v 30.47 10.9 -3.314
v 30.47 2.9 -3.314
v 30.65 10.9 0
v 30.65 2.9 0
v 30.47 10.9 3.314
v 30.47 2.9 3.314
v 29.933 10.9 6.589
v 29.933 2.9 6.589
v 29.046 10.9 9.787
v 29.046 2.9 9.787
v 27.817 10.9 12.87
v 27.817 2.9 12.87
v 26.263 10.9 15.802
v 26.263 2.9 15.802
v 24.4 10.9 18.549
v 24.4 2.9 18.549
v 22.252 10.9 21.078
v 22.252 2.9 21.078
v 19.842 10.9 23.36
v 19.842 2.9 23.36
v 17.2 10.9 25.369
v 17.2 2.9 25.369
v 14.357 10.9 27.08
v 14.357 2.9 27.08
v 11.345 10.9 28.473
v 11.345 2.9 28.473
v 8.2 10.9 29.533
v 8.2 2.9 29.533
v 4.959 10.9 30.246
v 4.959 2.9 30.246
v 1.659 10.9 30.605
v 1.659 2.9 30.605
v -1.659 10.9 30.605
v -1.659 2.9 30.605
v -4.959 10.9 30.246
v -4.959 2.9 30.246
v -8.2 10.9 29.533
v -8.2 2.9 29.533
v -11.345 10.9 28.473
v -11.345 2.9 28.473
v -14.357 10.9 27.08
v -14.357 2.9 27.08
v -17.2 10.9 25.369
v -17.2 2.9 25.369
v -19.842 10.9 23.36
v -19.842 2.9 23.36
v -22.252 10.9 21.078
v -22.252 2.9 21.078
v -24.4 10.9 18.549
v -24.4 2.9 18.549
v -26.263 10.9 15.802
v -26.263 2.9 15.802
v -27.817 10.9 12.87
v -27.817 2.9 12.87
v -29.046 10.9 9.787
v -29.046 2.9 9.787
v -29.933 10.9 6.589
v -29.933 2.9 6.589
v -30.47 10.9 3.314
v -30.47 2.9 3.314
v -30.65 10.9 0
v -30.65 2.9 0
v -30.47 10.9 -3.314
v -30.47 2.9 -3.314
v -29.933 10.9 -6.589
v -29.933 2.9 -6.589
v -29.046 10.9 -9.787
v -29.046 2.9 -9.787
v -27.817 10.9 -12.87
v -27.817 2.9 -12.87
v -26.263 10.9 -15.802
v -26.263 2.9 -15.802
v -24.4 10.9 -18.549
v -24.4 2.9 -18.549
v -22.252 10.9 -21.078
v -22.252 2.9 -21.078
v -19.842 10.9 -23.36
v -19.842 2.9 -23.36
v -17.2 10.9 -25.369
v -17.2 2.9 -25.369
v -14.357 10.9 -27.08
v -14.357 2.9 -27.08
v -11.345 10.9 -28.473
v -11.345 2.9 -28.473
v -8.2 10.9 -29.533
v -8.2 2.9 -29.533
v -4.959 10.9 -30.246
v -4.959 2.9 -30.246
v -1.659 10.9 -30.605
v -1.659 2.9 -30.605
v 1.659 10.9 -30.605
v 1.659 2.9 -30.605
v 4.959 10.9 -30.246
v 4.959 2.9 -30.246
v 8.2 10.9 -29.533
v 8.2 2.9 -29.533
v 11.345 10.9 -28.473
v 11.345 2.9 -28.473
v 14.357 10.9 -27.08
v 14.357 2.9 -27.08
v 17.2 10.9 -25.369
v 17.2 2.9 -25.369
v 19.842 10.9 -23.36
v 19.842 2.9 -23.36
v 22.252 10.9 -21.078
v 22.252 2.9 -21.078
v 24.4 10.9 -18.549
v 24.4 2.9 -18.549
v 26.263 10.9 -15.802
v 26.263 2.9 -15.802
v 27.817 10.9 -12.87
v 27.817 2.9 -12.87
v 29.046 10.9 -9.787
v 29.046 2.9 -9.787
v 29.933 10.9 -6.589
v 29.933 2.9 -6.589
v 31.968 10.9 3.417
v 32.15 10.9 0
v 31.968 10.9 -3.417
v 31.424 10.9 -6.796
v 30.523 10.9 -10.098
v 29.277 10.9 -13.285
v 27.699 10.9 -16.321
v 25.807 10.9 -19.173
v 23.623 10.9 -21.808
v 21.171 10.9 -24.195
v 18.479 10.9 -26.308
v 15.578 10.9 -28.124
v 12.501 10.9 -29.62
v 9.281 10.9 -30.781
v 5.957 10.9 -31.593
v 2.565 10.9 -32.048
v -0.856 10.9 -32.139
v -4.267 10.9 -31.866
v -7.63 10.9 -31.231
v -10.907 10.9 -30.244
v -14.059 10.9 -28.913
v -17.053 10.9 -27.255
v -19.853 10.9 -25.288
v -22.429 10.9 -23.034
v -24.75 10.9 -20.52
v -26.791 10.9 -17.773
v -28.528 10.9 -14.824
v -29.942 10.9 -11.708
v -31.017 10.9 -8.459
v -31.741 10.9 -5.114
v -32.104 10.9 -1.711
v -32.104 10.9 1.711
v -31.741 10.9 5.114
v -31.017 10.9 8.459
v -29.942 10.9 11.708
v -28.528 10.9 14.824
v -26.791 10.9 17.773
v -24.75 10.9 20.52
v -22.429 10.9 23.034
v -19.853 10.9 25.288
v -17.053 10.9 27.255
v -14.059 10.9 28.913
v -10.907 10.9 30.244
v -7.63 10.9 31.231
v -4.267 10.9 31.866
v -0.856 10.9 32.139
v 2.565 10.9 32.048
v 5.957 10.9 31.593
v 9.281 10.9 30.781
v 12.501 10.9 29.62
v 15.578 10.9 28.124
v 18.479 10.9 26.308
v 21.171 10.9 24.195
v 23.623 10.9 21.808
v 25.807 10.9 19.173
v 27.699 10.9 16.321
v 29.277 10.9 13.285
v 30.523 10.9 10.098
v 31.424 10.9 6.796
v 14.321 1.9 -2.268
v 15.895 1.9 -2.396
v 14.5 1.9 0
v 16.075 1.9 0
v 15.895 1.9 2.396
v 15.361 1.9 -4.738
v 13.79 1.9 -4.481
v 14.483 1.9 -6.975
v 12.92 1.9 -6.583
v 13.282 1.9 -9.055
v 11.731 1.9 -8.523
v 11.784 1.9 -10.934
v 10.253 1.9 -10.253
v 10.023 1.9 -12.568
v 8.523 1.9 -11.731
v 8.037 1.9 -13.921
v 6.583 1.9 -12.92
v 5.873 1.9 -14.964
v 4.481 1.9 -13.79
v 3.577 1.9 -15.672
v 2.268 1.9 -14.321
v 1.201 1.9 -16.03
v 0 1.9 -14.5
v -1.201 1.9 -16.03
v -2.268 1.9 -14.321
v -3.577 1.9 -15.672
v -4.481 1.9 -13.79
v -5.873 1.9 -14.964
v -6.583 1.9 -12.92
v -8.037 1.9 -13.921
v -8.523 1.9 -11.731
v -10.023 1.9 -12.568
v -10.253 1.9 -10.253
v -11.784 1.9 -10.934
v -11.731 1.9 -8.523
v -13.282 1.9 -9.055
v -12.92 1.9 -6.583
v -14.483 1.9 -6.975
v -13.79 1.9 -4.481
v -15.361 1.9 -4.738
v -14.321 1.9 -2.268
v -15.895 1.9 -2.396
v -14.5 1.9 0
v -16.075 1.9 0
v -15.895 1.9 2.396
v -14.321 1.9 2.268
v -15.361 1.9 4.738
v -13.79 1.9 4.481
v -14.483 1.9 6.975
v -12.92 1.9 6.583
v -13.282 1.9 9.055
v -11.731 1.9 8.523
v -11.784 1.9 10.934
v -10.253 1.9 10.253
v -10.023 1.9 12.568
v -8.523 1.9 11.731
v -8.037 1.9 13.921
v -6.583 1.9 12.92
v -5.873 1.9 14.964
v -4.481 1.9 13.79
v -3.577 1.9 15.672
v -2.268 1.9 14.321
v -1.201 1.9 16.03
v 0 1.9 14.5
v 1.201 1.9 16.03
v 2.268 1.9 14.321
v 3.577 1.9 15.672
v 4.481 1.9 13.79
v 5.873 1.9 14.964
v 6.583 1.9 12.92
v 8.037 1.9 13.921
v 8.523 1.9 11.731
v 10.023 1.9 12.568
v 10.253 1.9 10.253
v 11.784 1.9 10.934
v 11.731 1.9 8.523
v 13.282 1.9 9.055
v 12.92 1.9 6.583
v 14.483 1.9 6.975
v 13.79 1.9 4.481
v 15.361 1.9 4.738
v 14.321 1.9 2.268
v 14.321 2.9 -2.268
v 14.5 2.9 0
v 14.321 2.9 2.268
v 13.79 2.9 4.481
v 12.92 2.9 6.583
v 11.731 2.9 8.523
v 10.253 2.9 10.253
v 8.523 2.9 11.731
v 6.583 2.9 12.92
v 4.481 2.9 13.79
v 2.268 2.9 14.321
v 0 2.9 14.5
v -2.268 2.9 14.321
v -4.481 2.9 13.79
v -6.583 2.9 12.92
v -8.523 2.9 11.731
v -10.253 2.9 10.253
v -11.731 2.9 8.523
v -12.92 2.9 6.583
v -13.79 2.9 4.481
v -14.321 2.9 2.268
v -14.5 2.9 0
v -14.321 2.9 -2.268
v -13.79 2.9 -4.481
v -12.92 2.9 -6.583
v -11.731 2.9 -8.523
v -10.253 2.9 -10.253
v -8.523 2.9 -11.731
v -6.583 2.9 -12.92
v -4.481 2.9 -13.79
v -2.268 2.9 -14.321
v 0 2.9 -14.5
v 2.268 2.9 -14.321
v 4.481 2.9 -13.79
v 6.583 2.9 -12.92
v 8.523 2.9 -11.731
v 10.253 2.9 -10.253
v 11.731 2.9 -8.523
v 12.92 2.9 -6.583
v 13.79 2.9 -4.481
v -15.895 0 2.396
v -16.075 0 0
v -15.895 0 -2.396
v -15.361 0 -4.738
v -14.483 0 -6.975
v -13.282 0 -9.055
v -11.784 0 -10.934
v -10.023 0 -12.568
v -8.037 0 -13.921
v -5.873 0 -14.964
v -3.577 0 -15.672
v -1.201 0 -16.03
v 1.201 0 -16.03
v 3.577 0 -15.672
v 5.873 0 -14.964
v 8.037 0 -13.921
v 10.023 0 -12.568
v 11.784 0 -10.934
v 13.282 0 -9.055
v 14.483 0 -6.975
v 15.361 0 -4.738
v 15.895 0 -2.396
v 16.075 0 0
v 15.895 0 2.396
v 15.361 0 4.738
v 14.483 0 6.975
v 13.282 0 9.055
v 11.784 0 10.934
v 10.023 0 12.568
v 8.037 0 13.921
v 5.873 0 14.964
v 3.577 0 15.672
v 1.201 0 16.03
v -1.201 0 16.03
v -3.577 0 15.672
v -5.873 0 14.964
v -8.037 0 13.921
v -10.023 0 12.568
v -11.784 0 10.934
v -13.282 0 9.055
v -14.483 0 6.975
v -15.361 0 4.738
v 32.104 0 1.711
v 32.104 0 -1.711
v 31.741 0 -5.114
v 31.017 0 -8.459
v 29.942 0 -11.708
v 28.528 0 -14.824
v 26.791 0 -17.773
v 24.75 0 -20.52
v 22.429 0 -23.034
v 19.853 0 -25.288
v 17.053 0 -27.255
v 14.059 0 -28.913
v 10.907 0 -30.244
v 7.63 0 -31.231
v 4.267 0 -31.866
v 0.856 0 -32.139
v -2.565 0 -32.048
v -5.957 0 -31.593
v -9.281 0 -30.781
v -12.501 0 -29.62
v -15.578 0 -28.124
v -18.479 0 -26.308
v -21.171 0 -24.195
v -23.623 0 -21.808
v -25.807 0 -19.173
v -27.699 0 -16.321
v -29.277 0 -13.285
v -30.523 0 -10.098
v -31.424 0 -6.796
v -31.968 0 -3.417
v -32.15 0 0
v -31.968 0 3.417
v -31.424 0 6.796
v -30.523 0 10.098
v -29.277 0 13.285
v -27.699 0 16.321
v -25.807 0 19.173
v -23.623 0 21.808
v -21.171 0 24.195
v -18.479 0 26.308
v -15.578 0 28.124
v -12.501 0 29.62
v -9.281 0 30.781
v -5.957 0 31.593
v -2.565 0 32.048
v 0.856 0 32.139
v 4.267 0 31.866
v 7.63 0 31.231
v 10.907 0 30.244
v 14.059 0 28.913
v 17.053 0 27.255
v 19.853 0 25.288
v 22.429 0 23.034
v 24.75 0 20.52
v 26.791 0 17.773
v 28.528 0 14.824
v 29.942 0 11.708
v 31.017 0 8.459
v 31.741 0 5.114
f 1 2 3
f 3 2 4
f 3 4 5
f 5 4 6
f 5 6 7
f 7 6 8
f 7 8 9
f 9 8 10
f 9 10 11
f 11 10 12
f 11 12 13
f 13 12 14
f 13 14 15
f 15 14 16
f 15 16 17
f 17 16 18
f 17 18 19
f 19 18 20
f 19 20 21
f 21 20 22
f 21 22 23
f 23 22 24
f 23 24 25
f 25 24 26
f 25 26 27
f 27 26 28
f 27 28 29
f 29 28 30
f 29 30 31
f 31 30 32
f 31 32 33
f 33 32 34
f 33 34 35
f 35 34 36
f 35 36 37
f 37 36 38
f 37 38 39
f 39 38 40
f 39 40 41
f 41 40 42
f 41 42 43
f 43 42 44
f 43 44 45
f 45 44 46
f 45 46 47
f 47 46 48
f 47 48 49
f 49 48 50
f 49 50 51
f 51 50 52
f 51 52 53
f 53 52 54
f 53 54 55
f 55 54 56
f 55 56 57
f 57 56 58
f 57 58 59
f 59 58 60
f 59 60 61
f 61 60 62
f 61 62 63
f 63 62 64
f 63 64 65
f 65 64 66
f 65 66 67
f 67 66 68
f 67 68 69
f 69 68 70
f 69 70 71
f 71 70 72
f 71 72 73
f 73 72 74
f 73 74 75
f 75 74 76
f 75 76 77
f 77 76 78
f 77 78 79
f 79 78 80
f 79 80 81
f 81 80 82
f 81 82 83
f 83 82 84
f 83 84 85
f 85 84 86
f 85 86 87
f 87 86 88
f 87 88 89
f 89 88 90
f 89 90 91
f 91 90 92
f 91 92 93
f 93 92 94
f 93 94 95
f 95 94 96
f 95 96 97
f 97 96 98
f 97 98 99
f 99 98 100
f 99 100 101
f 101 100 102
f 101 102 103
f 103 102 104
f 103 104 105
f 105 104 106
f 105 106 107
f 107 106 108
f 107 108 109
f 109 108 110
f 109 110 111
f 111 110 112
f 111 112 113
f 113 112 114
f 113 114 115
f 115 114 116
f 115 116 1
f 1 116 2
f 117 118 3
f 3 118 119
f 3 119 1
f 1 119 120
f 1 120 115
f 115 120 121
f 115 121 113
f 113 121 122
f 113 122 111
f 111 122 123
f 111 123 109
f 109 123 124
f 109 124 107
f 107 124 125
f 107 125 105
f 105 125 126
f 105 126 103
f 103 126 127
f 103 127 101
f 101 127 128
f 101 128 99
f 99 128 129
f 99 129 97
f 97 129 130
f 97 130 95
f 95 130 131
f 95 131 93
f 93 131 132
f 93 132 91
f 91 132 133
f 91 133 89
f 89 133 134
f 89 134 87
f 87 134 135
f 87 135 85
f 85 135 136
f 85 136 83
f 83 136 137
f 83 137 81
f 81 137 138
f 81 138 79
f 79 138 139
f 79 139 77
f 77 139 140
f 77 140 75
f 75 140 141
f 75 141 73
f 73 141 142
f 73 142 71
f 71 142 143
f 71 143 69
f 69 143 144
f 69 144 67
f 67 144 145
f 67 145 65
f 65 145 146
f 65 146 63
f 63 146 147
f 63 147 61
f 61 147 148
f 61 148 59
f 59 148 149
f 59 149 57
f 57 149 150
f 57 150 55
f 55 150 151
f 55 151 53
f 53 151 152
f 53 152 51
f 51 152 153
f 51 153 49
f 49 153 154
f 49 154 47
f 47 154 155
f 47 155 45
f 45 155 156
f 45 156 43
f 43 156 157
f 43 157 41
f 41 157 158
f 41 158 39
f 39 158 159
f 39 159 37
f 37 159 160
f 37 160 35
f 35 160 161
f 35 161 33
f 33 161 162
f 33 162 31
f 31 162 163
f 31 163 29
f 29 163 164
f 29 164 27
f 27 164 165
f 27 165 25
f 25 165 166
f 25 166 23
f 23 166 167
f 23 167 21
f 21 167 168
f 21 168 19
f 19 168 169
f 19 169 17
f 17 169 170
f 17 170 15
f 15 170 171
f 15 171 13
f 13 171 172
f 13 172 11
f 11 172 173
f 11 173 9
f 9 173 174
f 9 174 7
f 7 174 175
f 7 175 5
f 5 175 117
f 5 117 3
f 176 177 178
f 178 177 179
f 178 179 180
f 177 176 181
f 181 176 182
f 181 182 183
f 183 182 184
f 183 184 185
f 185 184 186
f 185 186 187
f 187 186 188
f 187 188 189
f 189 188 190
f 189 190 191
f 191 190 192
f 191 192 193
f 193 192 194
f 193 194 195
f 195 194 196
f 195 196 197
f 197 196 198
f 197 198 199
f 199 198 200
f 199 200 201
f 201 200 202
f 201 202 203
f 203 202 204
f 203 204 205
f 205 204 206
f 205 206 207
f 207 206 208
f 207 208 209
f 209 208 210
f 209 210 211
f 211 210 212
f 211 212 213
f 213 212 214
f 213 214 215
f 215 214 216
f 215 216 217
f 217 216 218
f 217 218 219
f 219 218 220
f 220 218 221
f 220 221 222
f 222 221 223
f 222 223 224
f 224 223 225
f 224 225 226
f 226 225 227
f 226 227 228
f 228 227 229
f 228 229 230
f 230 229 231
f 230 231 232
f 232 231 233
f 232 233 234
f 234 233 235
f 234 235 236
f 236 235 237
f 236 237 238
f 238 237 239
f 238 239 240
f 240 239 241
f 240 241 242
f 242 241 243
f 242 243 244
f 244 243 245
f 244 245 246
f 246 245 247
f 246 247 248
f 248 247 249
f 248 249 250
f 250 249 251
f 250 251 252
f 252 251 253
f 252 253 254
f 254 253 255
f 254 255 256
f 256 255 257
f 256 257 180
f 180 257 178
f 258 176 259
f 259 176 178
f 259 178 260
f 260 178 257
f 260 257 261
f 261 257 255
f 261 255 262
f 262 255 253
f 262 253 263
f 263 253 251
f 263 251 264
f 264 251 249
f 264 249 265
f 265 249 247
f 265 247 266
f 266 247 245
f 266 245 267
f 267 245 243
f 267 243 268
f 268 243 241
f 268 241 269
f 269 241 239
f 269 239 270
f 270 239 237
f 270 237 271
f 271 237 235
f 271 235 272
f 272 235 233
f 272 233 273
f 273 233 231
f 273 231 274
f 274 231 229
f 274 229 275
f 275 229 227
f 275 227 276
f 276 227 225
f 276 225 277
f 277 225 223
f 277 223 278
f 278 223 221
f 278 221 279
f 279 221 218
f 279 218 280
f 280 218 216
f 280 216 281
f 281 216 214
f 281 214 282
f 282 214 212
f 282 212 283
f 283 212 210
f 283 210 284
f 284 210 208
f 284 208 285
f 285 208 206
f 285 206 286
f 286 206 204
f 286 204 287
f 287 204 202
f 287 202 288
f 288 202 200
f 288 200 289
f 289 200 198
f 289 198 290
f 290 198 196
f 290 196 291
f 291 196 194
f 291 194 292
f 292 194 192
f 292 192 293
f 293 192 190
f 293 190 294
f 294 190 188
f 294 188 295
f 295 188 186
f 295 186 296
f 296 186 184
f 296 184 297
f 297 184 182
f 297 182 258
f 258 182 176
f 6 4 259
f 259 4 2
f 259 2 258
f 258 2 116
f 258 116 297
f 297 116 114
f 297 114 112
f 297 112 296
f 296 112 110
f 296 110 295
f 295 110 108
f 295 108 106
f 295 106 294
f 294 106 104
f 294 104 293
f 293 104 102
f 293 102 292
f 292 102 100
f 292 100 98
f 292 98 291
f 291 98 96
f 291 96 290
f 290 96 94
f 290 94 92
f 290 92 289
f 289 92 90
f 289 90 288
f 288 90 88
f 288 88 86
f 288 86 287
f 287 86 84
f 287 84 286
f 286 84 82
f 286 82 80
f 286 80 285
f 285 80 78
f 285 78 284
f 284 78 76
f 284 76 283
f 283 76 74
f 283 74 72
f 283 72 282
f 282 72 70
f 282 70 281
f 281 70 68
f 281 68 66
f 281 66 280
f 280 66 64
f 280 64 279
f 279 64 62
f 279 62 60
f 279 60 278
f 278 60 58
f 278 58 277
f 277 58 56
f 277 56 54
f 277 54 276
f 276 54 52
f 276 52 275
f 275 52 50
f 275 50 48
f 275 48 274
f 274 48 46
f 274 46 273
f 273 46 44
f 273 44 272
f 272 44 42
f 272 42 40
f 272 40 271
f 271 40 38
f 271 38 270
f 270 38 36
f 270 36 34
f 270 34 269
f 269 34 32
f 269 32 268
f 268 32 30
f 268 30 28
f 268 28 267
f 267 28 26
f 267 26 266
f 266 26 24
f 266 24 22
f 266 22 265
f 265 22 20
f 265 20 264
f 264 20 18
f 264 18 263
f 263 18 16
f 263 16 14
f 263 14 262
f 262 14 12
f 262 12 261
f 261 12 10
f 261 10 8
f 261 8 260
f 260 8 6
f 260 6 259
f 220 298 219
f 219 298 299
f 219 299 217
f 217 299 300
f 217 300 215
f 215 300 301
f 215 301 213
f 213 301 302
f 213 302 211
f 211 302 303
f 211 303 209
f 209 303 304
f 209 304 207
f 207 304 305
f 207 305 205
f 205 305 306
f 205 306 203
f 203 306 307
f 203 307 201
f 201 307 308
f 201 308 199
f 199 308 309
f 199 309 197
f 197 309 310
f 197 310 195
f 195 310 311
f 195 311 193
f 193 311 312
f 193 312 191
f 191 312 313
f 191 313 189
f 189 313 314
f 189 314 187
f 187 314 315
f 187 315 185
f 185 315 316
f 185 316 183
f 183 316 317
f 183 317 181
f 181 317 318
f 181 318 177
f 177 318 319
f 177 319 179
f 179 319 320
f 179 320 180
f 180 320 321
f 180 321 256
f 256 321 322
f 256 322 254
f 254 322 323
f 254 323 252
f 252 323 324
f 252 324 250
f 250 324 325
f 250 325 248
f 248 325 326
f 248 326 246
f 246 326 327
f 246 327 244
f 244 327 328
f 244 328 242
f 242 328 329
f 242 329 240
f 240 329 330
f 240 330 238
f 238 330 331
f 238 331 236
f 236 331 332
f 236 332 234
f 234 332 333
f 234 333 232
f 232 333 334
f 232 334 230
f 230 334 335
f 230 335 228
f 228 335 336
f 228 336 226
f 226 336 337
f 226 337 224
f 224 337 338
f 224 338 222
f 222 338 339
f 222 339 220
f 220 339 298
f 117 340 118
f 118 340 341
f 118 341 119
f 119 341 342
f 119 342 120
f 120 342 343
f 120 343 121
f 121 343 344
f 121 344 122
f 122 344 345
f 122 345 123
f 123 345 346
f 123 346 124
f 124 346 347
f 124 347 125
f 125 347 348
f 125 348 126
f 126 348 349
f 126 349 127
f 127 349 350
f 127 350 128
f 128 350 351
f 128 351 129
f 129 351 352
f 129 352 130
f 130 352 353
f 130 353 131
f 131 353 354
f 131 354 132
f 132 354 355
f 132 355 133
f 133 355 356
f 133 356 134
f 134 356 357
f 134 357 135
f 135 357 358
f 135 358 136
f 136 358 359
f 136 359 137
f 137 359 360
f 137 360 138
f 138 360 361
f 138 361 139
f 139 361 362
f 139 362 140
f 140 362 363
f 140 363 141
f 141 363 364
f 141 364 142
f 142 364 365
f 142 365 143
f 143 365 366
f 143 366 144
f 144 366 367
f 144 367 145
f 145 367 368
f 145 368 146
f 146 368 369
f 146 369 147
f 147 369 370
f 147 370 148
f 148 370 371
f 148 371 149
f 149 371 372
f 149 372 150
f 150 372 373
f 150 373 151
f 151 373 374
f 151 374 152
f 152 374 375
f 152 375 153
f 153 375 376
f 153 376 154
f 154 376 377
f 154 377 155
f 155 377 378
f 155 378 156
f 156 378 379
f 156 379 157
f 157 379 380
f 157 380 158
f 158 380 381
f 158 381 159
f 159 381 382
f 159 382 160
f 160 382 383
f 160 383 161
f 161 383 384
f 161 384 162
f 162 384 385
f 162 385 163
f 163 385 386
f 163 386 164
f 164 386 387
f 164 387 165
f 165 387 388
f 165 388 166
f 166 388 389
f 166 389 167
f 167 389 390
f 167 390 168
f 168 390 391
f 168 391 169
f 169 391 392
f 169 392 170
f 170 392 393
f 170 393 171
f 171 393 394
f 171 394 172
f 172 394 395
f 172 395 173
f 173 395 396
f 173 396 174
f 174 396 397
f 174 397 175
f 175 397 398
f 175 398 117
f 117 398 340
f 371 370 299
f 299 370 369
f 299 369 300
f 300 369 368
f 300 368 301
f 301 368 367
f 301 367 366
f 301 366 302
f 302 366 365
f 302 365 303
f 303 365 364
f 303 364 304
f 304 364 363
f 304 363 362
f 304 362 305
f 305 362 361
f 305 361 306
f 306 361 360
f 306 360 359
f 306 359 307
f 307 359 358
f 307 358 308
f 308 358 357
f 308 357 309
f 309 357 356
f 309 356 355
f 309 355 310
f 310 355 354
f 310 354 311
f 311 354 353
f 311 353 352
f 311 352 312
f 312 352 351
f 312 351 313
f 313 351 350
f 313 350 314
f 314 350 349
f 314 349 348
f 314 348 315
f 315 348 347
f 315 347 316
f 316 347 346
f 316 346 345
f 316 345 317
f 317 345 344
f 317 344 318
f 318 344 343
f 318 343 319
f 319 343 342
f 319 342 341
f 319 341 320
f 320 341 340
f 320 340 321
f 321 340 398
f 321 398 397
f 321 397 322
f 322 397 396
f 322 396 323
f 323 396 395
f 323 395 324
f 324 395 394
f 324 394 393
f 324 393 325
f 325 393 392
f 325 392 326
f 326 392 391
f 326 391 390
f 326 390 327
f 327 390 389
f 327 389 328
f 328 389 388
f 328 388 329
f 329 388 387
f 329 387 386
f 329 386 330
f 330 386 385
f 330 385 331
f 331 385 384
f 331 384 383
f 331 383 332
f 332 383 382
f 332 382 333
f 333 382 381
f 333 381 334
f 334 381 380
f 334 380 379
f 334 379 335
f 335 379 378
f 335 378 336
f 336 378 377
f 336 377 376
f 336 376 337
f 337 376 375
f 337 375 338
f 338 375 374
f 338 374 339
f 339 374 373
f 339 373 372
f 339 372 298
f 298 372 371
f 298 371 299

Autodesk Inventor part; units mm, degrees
ref_plane "YZ Plane" through (0, 0, 0) normal (1, 0, 0) x (0, 1, 0)
ref_plane "XZ Plane" through (0, 0, 0) normal (0, 1, 0) x (-1, 0, 0)
ref_plane "XY Plane" through (0, 0, 0) normal (0, 0, 1) x (1, 0, 0)
sketch "Sketch1" plane through (0, 0, 0) normal (0, 1, 0) x (-1, 0, 0)
  circle A0 centre (0, 0) radius 16.075
  circle A1 centre (0, 0) radius 32.15
  dimension "d0" = 32.15
  dimension "d1" = 64.3
extrude "Extrusion1" add sketch "Sketch1" along normal blind 1.9
sketch "Sketch2" plane through (0, 1.9, 0) normal (0, 1, 0) x (1, 0, 0)
  circle A0 centre (0, 0) radius 14.5
  circle A1 centre (0, 0) radius 32.15
  dimension "d4" = 29
extrude "Extrusion2" add sketch "Sketch2" along normal blind 1
sketch "Sketch3" plane through (0, 2.9, 0) normal (0, 1, 0) x (1, 0, 0)
  circle A0 centre (0, 0) radius 30.65
  circle A1 centre (0, 0) radius 32.15
  dimension "d7" = 61.3
  dimension "d10" = 64.3
extrude "Extrusion3" add sketch "Sketch3" along normal blind 8
properties part number "Widefield_LightShield_LowerRing"
